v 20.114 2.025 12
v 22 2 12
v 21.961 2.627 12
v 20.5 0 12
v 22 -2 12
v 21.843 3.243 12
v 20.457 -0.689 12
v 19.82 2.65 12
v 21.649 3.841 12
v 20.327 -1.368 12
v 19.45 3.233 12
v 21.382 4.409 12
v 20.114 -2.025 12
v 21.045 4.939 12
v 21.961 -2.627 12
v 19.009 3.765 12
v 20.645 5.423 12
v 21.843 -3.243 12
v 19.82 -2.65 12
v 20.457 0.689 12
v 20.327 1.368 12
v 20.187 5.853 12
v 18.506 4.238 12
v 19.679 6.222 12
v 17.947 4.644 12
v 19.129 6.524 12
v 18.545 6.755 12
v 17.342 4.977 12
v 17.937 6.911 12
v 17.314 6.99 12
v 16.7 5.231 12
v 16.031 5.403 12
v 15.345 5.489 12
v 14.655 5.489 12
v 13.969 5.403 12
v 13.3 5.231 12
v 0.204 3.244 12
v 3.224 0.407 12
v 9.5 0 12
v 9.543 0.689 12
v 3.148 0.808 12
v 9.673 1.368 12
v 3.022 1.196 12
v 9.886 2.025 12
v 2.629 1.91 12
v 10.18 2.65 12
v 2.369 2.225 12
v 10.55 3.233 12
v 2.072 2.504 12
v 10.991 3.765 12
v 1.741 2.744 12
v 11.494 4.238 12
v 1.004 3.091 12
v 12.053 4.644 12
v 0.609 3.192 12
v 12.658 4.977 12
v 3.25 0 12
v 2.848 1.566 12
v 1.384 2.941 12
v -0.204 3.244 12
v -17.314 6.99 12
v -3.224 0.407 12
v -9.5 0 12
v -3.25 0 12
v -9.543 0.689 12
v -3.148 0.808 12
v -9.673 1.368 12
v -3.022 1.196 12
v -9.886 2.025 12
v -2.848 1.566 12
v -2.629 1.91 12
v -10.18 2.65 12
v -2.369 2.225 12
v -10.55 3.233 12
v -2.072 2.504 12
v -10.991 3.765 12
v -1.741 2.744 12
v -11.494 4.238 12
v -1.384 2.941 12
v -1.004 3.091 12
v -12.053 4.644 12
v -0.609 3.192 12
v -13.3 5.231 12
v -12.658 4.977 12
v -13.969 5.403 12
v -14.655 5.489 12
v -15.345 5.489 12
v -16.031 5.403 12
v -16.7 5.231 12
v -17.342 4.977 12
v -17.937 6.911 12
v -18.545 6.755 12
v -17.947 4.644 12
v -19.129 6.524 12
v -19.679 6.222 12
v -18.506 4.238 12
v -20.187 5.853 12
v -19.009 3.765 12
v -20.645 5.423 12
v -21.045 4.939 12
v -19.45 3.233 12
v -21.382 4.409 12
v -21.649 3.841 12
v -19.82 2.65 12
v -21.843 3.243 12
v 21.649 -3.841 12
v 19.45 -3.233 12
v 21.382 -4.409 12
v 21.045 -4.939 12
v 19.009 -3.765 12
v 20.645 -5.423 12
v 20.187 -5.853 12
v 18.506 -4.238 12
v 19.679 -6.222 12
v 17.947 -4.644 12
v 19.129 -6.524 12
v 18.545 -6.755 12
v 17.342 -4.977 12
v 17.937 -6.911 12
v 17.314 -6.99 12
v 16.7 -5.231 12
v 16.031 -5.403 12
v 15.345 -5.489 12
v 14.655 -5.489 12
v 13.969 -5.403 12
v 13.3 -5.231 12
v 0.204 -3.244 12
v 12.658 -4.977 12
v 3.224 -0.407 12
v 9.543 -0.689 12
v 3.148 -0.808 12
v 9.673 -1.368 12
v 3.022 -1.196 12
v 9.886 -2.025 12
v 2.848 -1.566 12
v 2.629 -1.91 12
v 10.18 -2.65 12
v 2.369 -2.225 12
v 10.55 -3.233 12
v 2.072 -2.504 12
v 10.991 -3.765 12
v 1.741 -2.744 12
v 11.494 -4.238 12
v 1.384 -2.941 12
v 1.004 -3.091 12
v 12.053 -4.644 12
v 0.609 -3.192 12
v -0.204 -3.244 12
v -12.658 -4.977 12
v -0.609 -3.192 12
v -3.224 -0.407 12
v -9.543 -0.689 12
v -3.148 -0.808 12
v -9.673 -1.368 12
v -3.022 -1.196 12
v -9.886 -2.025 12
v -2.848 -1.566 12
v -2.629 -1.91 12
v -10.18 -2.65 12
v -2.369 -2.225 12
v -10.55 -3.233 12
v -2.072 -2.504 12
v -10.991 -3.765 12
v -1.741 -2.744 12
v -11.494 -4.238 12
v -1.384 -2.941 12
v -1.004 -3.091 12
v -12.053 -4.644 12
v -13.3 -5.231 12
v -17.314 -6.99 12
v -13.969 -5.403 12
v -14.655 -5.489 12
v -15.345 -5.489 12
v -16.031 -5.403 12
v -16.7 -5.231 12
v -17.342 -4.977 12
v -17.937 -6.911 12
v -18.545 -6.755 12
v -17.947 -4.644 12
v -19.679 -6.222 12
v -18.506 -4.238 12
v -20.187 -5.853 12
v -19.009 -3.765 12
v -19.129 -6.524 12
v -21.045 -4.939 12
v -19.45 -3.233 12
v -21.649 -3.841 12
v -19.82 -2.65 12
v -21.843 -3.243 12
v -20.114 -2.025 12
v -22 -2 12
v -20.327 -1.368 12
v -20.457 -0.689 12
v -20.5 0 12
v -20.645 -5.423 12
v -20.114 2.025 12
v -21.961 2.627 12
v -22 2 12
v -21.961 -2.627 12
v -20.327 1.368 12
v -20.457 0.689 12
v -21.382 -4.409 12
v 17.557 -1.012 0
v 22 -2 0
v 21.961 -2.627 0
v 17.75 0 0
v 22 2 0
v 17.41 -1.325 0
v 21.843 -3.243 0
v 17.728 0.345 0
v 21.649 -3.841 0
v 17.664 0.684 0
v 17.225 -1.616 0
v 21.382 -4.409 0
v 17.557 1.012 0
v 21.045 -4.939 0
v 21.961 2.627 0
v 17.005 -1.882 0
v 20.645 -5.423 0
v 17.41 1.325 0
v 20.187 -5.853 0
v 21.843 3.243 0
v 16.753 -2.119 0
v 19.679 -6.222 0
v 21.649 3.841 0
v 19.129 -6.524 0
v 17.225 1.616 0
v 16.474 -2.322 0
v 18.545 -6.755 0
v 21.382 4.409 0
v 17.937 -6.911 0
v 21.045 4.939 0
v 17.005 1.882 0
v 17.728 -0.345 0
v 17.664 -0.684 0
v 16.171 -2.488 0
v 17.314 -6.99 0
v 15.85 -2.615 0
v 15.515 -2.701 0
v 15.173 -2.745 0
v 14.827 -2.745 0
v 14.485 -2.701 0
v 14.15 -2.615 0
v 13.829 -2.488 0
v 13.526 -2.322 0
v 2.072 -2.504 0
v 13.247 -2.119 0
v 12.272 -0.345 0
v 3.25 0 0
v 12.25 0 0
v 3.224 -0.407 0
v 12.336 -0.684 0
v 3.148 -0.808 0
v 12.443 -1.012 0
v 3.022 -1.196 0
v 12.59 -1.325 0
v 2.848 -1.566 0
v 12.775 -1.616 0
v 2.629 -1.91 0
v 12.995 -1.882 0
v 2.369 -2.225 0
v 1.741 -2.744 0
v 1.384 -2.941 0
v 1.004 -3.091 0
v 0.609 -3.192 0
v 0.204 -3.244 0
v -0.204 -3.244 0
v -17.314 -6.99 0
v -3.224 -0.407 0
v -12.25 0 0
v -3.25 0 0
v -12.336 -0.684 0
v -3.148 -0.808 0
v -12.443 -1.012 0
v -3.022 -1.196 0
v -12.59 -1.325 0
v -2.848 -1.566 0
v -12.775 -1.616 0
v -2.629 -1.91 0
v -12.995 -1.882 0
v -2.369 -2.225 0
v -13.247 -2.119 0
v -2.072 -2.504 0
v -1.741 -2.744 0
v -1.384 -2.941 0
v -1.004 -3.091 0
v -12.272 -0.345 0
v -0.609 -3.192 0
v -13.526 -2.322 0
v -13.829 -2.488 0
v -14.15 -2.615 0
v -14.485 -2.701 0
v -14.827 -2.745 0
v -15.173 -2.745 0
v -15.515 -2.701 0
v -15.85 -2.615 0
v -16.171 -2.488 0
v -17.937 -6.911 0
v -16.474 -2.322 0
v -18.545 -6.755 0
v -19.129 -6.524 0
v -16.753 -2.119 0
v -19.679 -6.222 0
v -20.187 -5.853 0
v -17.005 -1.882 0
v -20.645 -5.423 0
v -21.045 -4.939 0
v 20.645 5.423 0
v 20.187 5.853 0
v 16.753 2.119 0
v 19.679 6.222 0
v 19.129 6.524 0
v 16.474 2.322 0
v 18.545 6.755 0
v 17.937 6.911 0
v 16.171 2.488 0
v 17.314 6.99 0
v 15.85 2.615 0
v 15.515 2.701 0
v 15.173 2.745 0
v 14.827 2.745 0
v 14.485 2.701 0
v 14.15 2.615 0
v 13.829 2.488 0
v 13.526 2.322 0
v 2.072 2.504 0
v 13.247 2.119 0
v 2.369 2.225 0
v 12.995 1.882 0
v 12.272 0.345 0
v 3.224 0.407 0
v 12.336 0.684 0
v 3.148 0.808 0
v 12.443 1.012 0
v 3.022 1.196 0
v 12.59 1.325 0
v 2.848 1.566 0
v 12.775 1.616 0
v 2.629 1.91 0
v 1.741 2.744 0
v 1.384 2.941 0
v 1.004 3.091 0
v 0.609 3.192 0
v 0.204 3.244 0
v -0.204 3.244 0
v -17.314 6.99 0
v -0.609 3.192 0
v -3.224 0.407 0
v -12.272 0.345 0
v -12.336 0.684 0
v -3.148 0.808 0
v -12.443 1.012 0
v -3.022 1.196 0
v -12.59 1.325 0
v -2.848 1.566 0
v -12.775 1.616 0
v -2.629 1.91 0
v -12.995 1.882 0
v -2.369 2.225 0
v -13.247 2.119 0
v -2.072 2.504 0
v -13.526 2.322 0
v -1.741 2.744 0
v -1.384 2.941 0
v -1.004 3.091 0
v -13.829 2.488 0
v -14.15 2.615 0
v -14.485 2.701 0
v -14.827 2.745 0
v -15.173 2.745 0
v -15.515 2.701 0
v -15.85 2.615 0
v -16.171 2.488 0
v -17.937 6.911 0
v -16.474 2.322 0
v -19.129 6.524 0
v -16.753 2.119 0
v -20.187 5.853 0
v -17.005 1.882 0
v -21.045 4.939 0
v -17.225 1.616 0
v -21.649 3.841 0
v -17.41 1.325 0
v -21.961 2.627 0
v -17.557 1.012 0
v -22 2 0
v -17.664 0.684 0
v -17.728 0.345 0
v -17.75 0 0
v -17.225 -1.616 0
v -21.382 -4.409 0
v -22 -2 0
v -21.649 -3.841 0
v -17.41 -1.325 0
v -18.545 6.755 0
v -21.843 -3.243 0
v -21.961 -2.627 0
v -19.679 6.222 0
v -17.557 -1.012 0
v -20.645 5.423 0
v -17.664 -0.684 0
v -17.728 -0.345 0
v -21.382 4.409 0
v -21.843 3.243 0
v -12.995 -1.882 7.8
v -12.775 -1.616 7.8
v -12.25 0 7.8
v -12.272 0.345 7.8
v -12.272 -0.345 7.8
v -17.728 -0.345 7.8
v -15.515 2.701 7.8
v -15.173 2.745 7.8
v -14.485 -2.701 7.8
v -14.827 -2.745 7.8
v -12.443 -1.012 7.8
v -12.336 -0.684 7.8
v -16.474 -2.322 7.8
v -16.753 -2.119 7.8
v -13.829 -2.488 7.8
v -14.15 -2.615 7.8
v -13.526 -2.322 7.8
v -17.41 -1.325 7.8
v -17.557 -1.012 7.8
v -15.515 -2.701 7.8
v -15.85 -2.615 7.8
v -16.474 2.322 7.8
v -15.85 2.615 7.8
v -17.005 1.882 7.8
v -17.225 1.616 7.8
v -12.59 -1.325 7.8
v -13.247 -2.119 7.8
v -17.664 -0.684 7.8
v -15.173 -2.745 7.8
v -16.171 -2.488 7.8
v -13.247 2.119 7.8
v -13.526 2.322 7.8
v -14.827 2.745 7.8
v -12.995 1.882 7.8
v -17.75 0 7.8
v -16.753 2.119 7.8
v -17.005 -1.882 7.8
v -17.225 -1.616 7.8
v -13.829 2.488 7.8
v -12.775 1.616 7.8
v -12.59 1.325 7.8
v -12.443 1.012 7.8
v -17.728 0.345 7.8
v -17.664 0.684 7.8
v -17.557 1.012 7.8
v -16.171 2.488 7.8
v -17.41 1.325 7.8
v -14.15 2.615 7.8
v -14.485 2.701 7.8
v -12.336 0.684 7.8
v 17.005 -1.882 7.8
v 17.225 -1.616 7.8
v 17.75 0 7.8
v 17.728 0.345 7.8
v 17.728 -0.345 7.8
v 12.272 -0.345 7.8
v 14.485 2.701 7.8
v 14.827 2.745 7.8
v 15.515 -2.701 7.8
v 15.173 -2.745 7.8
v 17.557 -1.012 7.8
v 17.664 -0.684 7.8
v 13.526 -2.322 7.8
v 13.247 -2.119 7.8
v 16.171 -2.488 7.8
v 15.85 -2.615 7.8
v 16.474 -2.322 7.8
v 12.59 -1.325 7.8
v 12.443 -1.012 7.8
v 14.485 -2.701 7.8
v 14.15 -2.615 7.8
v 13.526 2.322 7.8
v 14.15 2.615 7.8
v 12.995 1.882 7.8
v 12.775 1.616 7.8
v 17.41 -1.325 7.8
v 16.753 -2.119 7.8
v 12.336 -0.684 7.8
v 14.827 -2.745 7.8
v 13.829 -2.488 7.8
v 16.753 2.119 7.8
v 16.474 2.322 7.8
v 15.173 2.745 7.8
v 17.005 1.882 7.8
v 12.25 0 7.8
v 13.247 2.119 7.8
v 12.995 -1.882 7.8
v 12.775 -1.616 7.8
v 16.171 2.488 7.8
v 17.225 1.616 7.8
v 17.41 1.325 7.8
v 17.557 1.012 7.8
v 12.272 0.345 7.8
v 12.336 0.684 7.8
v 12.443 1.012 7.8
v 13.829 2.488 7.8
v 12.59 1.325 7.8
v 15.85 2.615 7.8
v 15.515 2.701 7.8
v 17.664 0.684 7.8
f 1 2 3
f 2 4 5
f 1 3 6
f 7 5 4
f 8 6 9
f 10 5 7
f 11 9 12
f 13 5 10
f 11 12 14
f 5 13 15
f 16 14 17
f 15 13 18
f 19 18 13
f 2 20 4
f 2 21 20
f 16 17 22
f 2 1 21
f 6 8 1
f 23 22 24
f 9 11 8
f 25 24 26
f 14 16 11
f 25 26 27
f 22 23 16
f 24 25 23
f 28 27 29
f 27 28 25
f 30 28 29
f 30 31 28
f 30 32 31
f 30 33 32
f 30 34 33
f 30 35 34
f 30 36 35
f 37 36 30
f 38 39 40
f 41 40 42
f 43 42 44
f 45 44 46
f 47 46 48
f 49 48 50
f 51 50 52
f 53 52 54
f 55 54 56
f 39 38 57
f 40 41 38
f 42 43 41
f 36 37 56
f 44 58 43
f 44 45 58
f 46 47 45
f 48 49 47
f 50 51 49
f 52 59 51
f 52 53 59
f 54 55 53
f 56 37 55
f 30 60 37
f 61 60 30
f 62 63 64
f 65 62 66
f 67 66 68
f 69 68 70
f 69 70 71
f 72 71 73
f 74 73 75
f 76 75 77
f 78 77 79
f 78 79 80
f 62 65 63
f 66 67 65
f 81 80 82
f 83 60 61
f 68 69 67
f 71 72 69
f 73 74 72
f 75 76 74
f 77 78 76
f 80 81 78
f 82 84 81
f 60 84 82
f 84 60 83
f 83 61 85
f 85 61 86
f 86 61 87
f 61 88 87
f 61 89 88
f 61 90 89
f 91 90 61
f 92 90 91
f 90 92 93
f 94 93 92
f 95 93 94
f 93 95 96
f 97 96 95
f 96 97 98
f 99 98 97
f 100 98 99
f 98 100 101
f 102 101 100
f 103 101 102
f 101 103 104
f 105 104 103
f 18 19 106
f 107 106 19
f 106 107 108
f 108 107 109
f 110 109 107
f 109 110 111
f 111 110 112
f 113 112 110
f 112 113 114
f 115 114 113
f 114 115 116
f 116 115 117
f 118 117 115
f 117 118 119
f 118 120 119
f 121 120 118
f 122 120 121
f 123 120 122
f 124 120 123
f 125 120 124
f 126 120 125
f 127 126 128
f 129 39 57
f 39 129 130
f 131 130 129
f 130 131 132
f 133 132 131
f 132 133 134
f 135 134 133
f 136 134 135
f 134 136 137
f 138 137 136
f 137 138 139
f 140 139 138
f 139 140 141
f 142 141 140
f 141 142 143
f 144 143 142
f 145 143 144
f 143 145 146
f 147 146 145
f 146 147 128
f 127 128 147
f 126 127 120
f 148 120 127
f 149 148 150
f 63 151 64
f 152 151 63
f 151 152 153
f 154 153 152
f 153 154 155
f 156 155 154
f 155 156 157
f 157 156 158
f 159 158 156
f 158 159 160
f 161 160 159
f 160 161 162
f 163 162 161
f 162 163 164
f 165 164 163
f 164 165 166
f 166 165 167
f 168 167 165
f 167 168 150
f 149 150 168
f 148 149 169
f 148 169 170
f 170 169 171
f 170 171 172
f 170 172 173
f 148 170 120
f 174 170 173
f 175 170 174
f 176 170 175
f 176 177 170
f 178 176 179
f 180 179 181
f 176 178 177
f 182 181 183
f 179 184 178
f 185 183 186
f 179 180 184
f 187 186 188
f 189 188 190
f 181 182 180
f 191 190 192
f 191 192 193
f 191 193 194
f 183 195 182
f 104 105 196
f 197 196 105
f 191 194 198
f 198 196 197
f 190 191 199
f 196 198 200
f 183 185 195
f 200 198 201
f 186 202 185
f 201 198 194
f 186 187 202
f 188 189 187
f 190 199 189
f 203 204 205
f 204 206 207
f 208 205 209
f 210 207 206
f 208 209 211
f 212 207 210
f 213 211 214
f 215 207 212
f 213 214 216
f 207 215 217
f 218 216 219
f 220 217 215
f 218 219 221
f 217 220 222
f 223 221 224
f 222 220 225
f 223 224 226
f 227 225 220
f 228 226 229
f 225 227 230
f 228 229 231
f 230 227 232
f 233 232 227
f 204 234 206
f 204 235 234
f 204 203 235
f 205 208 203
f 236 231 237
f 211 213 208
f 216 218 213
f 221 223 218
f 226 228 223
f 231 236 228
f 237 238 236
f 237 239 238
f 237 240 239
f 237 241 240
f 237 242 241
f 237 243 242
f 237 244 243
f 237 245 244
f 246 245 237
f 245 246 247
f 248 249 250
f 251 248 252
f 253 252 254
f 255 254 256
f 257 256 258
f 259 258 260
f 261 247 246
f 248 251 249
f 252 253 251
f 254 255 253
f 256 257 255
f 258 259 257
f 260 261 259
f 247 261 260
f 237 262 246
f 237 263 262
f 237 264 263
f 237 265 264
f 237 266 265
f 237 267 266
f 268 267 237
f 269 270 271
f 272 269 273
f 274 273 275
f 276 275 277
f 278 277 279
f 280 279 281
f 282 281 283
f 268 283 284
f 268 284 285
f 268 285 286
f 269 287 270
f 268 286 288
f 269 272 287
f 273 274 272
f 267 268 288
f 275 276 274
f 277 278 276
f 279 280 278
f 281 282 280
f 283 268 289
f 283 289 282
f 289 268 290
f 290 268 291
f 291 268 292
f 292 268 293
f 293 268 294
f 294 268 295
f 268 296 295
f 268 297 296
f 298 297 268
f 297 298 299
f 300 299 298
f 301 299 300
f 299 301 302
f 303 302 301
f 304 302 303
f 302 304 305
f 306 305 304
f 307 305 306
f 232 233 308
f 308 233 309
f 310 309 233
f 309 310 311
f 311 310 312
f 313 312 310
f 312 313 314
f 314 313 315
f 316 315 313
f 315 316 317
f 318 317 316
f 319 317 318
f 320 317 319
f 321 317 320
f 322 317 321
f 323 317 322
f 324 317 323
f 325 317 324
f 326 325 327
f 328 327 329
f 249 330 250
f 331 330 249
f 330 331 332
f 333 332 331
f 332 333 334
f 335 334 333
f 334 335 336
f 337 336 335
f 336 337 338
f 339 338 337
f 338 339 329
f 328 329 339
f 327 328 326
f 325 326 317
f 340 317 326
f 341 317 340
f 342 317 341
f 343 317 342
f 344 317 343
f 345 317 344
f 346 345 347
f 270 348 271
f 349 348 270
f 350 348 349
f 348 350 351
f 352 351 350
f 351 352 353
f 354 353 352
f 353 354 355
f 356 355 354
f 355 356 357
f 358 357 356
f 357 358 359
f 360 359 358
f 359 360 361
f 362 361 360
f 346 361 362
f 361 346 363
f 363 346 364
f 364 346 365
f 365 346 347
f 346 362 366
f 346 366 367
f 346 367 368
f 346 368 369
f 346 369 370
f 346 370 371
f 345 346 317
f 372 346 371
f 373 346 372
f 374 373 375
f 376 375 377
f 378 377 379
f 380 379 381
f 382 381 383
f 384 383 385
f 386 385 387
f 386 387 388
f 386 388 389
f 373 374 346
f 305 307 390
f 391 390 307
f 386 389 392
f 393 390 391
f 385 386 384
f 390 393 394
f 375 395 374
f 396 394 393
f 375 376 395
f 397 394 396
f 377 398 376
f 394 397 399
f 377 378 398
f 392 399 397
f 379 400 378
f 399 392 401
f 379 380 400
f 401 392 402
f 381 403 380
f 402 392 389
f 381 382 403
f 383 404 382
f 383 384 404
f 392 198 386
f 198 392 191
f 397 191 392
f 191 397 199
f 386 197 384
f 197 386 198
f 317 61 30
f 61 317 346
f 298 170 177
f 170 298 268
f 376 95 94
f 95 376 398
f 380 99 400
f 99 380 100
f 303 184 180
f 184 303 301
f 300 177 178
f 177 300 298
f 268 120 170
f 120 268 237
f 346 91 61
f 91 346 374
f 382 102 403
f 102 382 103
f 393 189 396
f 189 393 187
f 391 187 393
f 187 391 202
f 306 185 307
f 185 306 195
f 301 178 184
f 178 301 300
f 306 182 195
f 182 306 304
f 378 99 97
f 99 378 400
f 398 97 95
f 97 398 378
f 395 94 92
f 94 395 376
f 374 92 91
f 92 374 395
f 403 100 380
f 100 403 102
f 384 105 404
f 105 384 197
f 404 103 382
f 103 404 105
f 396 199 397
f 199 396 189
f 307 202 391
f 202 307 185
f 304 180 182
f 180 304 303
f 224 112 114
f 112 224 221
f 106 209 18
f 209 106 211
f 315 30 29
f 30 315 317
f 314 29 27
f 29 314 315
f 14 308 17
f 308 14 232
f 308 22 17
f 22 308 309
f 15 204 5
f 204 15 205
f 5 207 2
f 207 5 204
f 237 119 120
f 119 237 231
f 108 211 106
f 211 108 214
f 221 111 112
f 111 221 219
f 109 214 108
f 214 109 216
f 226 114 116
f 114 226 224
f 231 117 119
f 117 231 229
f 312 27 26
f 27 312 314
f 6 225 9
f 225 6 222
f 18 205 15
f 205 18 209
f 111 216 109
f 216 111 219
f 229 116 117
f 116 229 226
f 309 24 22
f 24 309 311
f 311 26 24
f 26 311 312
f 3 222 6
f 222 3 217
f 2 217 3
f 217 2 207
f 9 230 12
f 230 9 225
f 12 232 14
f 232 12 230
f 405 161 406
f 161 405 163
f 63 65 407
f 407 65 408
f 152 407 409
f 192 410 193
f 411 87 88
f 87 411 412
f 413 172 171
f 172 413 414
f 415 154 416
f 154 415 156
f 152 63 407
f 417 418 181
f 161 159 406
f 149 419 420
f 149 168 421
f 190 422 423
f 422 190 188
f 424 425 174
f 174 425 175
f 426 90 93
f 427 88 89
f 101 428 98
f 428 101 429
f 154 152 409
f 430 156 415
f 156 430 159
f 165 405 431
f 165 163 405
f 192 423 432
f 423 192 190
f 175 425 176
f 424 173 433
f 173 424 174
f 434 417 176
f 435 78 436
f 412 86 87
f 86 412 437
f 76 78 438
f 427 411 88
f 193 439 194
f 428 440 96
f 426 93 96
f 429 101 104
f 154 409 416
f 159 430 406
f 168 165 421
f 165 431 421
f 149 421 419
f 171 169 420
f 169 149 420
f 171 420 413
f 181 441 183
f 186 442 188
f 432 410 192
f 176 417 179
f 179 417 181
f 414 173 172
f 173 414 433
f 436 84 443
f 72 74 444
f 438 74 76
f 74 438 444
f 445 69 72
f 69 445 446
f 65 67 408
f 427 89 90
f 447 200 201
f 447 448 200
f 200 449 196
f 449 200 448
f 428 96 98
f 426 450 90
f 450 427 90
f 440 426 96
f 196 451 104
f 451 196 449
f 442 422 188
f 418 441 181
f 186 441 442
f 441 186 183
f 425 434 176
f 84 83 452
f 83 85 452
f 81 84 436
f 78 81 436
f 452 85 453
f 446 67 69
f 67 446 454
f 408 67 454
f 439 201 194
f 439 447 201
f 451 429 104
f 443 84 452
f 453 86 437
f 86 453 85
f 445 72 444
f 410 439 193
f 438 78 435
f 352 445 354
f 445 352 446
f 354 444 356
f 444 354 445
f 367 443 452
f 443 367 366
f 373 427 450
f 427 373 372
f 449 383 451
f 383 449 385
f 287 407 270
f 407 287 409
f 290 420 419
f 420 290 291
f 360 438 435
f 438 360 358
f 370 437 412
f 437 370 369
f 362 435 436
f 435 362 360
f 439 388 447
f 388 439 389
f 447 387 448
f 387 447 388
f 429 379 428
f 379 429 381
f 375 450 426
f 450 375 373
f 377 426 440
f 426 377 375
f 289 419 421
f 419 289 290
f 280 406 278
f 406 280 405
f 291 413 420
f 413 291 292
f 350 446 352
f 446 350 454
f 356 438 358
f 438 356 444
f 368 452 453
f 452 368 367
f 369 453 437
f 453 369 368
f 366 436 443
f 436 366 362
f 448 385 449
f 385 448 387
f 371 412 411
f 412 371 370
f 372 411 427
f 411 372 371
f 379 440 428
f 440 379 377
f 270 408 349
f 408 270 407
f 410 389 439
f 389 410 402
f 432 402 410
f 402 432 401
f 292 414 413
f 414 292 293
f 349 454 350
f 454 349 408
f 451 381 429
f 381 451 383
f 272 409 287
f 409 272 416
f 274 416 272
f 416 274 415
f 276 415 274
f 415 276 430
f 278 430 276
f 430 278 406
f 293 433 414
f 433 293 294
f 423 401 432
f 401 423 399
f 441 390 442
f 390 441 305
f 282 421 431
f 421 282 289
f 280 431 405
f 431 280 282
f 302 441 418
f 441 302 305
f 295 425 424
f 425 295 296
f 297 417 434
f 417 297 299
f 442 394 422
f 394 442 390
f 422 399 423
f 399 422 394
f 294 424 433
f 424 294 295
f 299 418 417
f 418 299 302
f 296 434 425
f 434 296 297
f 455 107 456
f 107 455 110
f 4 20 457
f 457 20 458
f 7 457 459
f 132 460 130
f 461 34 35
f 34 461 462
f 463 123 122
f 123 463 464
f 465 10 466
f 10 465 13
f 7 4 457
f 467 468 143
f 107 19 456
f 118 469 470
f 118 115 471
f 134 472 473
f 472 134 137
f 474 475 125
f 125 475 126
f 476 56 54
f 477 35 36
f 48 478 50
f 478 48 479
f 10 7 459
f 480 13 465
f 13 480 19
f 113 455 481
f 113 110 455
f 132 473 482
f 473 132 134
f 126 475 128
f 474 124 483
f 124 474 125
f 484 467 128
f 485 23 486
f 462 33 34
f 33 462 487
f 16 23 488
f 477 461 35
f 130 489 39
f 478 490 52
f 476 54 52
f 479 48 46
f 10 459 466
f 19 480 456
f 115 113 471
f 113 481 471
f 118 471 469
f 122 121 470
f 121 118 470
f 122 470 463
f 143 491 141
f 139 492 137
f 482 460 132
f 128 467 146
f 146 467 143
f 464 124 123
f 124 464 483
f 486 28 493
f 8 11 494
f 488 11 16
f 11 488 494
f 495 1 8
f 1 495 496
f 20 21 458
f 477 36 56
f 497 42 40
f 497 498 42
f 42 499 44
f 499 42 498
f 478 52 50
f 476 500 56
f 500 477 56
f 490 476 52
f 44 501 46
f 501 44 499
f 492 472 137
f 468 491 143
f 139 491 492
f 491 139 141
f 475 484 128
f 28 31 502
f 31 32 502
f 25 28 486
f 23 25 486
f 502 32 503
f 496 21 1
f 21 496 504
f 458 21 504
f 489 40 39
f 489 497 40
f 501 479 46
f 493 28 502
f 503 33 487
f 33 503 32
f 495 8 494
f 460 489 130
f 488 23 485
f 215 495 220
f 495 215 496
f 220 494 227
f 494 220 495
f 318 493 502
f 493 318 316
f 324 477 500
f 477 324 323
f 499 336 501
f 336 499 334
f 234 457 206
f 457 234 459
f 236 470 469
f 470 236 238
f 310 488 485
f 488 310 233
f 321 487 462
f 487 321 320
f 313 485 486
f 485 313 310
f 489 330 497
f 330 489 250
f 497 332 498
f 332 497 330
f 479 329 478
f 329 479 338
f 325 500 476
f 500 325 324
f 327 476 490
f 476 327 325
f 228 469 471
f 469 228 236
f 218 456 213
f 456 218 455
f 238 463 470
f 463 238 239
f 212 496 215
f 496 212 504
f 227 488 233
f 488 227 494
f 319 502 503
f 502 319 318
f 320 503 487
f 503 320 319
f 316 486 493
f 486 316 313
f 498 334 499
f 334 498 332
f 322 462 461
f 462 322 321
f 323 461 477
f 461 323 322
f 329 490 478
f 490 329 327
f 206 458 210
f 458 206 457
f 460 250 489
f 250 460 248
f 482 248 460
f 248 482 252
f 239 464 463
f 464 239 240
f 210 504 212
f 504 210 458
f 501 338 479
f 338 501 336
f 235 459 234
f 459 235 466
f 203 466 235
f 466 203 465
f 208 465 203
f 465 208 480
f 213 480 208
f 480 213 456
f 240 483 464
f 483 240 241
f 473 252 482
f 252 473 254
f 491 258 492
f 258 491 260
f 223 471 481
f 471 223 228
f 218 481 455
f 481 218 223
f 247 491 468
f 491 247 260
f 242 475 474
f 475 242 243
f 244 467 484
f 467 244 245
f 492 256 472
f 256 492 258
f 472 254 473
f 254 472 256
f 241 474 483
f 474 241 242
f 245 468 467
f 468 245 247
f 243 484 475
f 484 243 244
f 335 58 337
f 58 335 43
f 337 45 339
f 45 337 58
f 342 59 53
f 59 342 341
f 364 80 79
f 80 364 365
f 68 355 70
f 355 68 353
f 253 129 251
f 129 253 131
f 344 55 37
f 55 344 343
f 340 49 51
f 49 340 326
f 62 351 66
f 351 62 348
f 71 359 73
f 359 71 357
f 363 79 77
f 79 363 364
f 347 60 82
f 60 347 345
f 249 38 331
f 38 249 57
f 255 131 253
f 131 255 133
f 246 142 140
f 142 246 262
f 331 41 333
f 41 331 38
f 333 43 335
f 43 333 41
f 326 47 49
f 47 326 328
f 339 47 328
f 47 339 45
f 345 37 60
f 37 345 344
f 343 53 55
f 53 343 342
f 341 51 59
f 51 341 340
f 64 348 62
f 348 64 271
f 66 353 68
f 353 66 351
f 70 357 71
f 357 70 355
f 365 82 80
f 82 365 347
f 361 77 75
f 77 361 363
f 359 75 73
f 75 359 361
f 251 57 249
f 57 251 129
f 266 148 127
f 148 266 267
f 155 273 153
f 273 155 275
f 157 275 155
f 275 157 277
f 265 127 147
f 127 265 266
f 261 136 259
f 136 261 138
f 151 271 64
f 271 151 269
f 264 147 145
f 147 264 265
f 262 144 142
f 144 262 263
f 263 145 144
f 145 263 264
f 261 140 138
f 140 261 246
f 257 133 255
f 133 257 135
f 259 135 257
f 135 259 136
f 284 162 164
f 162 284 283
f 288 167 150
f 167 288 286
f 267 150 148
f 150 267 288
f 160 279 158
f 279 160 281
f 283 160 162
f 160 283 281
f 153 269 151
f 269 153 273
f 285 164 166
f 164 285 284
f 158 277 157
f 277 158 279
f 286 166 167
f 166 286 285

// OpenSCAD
$fn = 50;


difference() {
	union() {
		cylinder(h = 12, r = 7.0000000000);
		translate(v = [-7.5000000000, 0.0000000000, 0]) {
			hull() {
				translate(v = [-9.5000000000, 2.0000000000, 0]) {
					cylinder(h = 12, r = 5);
				}
				translate(v = [9.5000000000, 2.0000000000, 0]) {
					cylinder(h = 12, r = 5);
				}
				translate(v = [-9.5000000000, -2.0000000000, 0]) {
					cylinder(h = 12, r = 5);
				}
				translate(v = [9.5000000000, -2.0000000000, 0]) {
					cylinder(h = 12, r = 5);
				}
			}
		}
		translate(v = [-7.5000000000, 0.0000000000, 0]) {
			hull() {
				translate(v = [-9.5000000000, 2.0000000000, 0]) {
					cylinder(h = 12, r = 5);
				}
				translate(v = [9.5000000000, 2.0000000000, 0]) {
					cylinder(h = 12, r = 5);
				}
				translate(v = [-9.5000000000, -2.0000000000, 0]) {
					cylinder(h = 12, r = 5);
				}
				translate(v = [9.5000000000, -2.0000000000, 0]) {
					cylinder(h = 12, r = 5);
				}
			}
		}
		translate(v = [7.5000000000, 0.0000000000, 0]) {
			hull() {
				translate(v = [-9.5000000000, 2.0000000000, 0]) {
					cylinder(h = 12, r = 5);
				}
				translate(v = [9.5000000000, 2.0000000000, 0]) {
					cylinder(h = 12, r = 5);
				}
				translate(v = [-9.5000000000, -2.0000000000, 0]) {
					cylinder(h = 12, r = 5);
				}
				translate(v = [9.5000000000, -2.0000000000, 0]) {
					cylinder(h = 12, r = 5);
				}
			}
		}
		translate(v = [7.5000000000, 0.0000000000, 0]) {
			hull() {
				translate(v = [-9.5000000000, 2.0000000000, 0]) {
					cylinder(h = 12, r = 5);
				}
				translate(v = [9.5000000000, 2.0000000000, 0]) {
					cylinder(h = 12, r = 5);
				}
				translate(v = [-9.5000000000, -2.0000000000, 0]) {
					cylinder(h = 12, r = 5);
				}
				translate(v = [9.5000000000, -2.0000000000, 0]) {
					cylinder(h = 12, r = 5);
				}
			}
		}
	}
	union() {
		translate(v = [-15.0000000000, 0.0000000000, 12]) {
			rotate(a = [0, 0, 0]) {
				difference() {
					union() {
						#translate(v = [0, 0, -12.0000000000]) {
							cylinder(h = 12, r = 2.2500000000);
						}
						#translate(v = [0, 0, -4.2000000000]) {
							cylinder(h = 4.2000000000, r1 = 2.7500000000, r2 = 5.5000000000);
						}
						#translate(v = [0, 0, -12.0000000000]) {
							cylinder(h = 12, r = 2.7500000000);
						}
						#translate(v = [0, 0, -12.0000000000]) {
							cylinder(h = 12, r = 2.2500000000);
						}
					}
					union();
				}
			}
		}
		translate(v = [-15.0000000000, 0.0000000000, 12]) {
			rotate(a = [0, 0, 0]) {
				difference() {
					union() {
						#translate(v = [0, 0, -12.0000000000]) {
							cylinder(h = 12, r = 2.2500000000);
						}
						#translate(v = [0, 0, -4.2000000000]) {
							cylinder(h = 4.2000000000, r1 = 2.7500000000, r2 = 5.5000000000);
						}
						#translate(v = [0, 0, -12.0000000000]) {
							cylinder(h = 12, r = 2.7500000000);
						}
						#translate(v = [0, 0, -12.0000000000]) {
							cylinder(h = 12, r = 2.2500000000);
						}
					}
					union();
				}
			}
		}
		translate(v = [15.0000000000, 0.0000000000, 12]) {
			rotate(a = [0, 0, 0]) {
				difference() {
					union() {
						#translate(v = [0, 0, -12.0000000000]) {
							cylinder(h = 12, r = 2.2500000000);
						}
						#translate(v = [0, 0, -4.2000000000]) {
							cylinder(h = 4.2000000000, r1 = 2.7500000000, r2 = 5.5000000000);
						}
						#translate(v = [0, 0, -12.0000000000]) {
							cylinder(h = 12, r = 2.7500000000);
						}
						#translate(v = [0, 0, -12.0000000000]) {
							cylinder(h = 12, r = 2.2500000000);
						}
					}
					union();
				}
			}
		}
		translate(v = [15.0000000000, 0.0000000000, 12]) {
			rotate(a = [0, 0, 0]) {
				difference() {
					union() {
						#translate(v = [0, 0, -12.0000000000]) {
							cylinder(h = 12, r = 2.2500000000);
						}
						#translate(v = [0, 0, -4.2000000000]) {
							cylinder(h = 4.2000000000, r1 = 2.7500000000, r2 = 5.5000000000);
						}
						#translate(v = [0, 0, -12.0000000000]) {
							cylinder(h = 12, r = 2.7500000000);
						}
						#translate(v = [0, 0, -12.0000000000]) {
							cylinder(h = 12, r = 2.2500000000);
						}
					}
					union();
				}
			}
		}
		translate(v = [0, 0, -100]) {
			cylinder(h = 200, r = 3.2500000000);
		}
		translate(v = [0, 0, -100]) {
			cylinder(h = 200, r = 1.8000000000);
		}
	}
}
